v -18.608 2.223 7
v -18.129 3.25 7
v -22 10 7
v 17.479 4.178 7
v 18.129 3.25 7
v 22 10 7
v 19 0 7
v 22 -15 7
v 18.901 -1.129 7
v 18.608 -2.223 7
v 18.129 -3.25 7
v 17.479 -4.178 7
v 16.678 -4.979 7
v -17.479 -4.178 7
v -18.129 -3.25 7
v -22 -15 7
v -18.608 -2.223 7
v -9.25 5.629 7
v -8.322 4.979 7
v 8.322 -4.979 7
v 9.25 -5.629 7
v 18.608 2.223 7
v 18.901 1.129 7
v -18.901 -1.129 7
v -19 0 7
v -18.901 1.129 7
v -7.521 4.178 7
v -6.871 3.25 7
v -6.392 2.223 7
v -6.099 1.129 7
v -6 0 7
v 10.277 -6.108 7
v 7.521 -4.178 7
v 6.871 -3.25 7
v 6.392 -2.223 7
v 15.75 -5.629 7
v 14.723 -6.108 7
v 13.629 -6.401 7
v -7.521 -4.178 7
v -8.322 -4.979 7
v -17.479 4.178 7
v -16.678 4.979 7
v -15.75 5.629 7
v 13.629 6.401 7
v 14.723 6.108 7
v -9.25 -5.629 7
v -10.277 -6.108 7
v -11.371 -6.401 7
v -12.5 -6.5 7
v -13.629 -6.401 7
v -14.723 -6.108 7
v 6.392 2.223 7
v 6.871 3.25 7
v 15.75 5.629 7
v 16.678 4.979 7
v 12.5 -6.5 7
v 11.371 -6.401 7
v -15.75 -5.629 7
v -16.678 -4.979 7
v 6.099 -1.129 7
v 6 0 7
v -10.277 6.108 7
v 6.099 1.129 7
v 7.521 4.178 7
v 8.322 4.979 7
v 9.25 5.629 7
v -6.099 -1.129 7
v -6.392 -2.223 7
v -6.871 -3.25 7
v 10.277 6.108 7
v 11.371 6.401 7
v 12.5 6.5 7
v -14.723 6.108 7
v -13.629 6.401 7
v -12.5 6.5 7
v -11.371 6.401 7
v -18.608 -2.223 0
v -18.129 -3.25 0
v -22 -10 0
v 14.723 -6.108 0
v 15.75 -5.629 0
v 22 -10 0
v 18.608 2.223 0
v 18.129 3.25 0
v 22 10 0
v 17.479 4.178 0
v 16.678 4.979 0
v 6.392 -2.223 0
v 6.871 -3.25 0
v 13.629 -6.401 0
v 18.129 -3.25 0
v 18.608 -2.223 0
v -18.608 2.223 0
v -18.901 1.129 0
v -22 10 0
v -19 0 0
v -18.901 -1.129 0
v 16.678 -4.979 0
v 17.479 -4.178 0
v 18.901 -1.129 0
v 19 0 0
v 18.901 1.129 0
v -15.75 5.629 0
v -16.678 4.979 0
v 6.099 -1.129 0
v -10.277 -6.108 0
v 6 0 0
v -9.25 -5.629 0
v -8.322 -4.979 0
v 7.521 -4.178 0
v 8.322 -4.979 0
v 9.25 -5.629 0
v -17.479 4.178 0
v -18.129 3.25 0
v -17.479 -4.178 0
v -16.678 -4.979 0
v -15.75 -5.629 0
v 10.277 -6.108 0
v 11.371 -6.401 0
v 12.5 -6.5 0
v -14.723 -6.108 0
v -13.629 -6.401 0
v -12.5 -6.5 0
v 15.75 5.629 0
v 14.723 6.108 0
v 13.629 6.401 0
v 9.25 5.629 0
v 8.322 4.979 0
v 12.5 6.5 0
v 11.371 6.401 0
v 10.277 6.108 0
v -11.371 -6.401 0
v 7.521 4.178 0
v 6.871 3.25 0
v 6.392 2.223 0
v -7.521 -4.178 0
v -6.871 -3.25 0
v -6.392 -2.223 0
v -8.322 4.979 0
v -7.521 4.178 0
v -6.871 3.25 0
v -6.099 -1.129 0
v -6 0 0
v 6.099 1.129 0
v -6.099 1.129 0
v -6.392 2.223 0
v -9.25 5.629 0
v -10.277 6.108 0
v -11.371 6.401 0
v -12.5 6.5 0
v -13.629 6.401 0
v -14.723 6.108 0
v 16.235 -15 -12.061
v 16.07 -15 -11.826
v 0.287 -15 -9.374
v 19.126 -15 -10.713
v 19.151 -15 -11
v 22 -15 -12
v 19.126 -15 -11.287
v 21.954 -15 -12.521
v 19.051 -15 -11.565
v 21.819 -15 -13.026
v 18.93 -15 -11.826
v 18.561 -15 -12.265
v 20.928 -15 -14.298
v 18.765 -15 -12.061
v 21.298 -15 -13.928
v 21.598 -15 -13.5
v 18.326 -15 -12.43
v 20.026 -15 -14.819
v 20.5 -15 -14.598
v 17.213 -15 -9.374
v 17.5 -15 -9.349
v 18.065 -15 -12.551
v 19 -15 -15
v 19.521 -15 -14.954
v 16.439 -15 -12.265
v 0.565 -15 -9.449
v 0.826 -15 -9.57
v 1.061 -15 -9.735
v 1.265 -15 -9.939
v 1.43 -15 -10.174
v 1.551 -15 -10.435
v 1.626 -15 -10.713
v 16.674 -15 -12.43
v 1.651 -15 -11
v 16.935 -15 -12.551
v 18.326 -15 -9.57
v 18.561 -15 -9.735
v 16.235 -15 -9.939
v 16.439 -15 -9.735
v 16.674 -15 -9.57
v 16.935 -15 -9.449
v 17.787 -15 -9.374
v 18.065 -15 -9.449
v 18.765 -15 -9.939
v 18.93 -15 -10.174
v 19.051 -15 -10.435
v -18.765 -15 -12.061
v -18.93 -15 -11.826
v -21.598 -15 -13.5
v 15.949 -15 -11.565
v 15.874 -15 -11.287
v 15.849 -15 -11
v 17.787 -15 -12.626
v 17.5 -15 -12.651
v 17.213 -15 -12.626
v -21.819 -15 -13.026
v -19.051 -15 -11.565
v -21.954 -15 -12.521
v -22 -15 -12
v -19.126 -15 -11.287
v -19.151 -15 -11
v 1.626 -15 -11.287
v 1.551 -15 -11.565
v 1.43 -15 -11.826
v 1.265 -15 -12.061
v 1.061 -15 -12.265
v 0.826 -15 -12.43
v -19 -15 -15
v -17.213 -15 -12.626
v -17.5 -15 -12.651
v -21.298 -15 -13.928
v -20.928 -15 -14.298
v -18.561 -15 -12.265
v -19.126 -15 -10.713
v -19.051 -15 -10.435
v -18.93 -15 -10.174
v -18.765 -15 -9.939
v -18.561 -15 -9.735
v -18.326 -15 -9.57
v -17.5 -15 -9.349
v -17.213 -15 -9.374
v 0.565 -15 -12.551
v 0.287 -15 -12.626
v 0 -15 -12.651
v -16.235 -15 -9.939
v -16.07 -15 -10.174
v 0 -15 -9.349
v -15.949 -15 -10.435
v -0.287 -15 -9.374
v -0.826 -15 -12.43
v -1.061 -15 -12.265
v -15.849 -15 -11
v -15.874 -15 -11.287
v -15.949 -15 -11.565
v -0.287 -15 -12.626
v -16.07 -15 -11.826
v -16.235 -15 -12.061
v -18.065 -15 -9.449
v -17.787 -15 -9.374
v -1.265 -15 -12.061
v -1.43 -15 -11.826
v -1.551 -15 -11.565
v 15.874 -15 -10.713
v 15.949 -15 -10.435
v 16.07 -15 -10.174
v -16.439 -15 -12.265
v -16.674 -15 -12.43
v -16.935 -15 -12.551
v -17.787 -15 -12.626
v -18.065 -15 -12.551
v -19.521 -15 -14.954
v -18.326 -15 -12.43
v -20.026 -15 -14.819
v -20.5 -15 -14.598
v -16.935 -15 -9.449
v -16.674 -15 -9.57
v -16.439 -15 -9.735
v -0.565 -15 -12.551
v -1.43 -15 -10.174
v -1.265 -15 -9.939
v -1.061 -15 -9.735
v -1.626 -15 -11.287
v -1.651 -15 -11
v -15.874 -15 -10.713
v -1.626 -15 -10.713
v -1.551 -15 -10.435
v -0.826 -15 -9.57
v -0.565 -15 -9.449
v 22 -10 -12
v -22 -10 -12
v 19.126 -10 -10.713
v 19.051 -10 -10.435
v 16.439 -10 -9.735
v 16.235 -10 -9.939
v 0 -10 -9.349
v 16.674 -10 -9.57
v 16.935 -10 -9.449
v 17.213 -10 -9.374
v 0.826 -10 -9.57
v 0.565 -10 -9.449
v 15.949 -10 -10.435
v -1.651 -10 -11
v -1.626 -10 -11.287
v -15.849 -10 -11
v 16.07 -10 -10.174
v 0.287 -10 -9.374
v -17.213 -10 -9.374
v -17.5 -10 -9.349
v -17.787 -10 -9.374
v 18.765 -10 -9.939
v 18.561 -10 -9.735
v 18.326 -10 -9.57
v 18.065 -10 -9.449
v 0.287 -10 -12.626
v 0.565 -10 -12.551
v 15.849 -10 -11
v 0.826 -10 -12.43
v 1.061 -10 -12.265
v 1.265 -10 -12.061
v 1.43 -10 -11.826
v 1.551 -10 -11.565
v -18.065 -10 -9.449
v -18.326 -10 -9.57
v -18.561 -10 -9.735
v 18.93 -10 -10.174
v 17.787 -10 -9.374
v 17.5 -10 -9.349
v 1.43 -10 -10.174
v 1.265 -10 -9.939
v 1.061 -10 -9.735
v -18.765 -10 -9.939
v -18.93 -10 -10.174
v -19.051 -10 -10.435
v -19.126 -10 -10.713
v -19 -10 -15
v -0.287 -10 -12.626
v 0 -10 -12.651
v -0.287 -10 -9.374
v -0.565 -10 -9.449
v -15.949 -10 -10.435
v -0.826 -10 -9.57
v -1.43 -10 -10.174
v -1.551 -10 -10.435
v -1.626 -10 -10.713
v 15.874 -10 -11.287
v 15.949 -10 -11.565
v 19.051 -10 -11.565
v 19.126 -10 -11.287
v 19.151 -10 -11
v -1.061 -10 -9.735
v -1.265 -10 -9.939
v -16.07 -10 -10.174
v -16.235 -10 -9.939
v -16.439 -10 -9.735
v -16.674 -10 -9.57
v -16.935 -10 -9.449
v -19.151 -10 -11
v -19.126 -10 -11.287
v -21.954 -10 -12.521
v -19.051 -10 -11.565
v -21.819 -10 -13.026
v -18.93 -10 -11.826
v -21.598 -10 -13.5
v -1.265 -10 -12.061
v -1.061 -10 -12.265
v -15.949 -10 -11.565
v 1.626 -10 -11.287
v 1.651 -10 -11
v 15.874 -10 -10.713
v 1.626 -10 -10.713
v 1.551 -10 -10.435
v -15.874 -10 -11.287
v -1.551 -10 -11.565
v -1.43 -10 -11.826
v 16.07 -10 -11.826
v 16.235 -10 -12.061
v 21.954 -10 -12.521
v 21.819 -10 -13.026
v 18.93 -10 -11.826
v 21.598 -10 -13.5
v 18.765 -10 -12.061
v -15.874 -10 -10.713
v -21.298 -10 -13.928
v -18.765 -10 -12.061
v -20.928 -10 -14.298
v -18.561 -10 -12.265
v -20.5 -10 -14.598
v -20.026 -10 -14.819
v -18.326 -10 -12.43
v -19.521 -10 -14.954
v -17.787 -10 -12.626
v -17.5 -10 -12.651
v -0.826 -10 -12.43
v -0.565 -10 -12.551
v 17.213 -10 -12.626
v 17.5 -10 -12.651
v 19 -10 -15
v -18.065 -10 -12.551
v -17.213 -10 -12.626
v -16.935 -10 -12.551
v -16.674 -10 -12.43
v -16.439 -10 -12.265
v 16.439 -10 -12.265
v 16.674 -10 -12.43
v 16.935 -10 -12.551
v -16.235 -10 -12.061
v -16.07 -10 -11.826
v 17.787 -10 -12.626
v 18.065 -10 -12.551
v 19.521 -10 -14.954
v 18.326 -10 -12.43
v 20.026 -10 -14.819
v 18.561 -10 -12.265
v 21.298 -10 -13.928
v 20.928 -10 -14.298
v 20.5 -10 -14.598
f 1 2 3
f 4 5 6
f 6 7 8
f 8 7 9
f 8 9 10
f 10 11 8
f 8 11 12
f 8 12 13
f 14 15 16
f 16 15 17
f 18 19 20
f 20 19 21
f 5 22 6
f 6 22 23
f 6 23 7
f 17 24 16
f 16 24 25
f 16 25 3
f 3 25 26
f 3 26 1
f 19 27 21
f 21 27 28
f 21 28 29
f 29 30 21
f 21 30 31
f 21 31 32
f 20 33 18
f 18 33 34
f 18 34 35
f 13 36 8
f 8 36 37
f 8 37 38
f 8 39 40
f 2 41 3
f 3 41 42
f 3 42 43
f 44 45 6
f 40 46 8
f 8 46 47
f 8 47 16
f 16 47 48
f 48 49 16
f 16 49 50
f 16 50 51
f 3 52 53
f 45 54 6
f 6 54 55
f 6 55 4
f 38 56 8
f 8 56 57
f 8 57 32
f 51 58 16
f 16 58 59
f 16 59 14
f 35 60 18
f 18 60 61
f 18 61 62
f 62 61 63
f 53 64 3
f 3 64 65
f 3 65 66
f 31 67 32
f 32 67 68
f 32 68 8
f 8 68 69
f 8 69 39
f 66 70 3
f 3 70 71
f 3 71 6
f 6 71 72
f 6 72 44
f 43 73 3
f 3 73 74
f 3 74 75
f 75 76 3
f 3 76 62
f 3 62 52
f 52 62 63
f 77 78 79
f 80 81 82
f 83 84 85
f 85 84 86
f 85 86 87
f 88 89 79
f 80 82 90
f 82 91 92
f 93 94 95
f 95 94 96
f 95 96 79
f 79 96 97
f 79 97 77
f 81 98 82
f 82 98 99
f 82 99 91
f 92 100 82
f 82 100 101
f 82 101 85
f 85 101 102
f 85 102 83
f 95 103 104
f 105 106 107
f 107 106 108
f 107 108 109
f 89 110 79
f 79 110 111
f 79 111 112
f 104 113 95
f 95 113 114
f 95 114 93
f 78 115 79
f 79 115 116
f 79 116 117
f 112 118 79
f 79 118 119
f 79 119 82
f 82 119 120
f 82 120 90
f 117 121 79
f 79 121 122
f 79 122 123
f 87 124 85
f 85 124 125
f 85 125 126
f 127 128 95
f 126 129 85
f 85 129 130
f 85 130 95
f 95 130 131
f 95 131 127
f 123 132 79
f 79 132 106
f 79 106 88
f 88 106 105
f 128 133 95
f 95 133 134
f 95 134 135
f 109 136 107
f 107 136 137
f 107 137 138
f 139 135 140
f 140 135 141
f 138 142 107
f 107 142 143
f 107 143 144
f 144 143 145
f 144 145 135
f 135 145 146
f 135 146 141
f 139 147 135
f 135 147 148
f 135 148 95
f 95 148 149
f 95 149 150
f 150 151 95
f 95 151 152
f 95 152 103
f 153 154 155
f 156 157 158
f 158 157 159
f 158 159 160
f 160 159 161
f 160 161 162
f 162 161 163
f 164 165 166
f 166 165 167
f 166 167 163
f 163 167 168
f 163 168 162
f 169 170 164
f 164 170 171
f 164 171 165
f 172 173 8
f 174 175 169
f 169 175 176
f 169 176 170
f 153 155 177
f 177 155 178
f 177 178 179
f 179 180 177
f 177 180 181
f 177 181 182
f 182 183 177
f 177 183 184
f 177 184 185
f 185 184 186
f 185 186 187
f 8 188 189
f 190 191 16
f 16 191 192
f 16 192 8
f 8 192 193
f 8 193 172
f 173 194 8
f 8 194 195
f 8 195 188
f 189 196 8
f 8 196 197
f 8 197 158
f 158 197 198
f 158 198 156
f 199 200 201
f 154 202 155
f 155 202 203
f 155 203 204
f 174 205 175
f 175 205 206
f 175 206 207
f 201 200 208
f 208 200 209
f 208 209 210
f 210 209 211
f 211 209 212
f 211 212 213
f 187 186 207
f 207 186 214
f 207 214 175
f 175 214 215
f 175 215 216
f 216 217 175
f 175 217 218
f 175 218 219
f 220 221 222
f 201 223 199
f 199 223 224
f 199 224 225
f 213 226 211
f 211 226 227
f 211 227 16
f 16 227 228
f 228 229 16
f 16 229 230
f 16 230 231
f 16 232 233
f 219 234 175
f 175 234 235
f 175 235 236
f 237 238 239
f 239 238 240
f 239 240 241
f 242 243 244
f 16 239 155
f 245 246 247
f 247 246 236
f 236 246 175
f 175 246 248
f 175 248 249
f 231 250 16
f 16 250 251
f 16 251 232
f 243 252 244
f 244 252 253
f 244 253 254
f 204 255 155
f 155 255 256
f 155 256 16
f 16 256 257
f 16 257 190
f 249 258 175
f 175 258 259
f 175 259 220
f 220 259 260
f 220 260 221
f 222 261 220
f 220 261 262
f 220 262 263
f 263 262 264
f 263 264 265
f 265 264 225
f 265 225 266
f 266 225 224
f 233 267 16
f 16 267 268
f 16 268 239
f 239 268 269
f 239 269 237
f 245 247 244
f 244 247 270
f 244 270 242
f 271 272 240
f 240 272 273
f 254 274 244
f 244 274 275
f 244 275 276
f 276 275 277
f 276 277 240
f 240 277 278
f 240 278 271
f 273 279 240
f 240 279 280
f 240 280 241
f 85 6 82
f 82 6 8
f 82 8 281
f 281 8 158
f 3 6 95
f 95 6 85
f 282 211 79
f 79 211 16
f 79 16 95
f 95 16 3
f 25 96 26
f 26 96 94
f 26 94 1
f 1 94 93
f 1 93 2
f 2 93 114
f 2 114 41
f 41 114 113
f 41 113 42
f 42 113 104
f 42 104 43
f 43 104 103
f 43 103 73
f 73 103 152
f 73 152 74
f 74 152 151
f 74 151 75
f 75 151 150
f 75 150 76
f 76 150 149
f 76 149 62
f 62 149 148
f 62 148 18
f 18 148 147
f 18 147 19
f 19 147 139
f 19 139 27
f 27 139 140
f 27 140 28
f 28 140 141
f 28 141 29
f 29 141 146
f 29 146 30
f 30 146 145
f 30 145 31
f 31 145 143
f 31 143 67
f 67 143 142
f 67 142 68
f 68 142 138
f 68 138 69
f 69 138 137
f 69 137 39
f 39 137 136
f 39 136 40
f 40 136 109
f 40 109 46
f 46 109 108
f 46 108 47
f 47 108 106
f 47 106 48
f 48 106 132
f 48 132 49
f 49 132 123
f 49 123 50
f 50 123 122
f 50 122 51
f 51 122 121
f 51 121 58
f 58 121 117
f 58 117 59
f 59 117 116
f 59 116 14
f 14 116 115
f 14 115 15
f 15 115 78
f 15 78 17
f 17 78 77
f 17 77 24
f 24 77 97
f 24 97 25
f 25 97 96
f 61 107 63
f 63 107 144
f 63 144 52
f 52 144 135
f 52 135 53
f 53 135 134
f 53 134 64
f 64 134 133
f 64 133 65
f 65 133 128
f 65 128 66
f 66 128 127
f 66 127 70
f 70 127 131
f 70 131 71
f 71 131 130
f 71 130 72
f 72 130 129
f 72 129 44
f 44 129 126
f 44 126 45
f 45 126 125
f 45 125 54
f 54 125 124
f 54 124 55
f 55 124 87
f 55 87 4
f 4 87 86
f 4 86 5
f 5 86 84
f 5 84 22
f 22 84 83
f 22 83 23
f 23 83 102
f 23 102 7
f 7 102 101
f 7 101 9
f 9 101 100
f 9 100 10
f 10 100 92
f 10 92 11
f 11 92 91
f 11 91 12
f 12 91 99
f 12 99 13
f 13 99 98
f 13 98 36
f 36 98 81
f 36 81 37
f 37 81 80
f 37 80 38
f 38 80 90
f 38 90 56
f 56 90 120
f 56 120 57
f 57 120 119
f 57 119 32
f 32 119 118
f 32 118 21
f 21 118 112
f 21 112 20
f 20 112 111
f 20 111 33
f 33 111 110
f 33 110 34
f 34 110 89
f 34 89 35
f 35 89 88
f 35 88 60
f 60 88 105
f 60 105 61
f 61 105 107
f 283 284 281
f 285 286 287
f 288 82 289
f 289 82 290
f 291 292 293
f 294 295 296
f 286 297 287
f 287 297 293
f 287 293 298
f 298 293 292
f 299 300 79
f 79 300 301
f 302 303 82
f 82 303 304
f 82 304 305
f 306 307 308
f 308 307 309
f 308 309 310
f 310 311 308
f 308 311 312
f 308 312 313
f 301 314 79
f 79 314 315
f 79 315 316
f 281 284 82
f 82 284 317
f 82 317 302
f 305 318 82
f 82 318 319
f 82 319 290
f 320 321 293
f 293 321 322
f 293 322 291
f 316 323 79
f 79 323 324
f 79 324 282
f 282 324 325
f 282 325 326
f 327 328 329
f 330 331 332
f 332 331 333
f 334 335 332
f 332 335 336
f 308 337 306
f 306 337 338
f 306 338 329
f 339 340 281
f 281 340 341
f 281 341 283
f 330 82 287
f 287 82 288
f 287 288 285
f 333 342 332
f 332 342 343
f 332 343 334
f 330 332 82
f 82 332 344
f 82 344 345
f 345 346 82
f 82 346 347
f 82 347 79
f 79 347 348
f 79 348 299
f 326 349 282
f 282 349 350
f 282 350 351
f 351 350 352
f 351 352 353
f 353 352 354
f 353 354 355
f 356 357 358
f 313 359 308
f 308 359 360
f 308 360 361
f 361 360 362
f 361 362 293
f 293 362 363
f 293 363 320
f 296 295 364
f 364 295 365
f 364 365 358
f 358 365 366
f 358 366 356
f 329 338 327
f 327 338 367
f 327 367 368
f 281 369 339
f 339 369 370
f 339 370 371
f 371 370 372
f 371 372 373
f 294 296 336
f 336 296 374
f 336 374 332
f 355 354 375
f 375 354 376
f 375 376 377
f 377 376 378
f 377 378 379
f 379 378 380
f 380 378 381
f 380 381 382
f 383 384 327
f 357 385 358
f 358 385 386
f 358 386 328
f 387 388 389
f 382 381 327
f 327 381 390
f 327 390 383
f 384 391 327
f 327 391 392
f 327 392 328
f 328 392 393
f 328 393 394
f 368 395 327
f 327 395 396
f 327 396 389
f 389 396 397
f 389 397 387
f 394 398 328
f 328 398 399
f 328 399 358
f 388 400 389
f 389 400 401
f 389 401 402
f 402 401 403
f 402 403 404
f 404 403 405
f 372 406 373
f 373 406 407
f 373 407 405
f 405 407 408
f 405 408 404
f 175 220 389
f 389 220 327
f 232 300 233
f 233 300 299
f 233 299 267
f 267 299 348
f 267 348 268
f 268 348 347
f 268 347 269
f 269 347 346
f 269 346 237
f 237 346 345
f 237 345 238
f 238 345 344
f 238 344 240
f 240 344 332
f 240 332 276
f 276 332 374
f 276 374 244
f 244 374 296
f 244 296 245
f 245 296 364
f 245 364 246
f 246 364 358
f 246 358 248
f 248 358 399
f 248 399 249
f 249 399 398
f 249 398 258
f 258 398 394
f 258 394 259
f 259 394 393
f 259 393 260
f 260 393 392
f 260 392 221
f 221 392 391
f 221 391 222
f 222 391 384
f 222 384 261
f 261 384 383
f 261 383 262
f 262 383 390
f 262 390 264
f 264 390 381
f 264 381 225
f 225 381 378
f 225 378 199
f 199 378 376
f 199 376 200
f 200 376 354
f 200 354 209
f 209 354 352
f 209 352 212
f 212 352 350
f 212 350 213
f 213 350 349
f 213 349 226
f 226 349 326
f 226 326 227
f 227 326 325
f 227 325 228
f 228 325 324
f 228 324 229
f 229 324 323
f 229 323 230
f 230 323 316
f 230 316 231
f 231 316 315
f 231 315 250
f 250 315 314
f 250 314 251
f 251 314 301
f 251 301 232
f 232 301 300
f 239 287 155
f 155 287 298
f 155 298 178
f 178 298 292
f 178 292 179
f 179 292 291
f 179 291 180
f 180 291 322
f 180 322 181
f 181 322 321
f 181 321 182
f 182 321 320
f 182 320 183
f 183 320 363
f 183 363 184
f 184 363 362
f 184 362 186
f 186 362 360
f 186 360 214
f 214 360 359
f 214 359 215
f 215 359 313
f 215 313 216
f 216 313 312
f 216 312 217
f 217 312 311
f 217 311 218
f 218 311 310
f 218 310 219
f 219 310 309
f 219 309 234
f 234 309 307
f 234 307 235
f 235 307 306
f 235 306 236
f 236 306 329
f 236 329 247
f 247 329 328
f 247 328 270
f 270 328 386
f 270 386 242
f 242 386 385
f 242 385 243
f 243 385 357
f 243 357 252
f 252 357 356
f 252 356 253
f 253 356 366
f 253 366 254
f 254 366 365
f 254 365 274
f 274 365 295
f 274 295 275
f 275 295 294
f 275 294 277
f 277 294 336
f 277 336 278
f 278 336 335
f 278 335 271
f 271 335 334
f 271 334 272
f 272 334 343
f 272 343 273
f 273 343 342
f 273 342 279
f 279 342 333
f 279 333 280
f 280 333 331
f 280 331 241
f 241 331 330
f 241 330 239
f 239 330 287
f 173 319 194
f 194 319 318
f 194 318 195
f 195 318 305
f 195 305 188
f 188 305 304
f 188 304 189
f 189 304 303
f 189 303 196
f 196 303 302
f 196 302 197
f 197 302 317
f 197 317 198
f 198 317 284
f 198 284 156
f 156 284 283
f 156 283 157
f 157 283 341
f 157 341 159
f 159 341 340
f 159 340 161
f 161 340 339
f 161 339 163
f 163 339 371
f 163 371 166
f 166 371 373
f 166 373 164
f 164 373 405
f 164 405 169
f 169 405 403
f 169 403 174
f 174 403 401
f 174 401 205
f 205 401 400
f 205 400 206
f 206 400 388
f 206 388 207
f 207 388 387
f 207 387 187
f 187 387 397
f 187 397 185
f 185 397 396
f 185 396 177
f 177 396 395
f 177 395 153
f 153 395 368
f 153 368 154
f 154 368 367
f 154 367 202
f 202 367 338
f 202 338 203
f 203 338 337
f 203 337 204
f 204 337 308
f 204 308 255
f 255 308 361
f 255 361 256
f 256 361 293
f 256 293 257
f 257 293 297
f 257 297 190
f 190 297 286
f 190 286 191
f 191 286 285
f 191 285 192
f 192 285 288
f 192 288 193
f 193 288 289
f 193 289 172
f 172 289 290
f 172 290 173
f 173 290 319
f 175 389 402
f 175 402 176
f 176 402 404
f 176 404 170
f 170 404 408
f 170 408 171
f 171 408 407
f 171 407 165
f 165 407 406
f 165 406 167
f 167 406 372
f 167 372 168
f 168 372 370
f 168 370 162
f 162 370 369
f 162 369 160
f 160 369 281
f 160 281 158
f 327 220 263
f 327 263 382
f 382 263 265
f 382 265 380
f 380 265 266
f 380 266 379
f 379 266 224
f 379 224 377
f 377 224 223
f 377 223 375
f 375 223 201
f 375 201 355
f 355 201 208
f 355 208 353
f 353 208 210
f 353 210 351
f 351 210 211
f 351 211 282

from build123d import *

# Parameters (mm, degrees)
SKETCH1_R           = 6.5
BOSS_EXTRUDE1_DEPTH = 7
SKETCH2_W           = 22
SKETCH2_H           = 5
BOSS_EXTRUDE2_DEPTH = 15
SKETCH3_R           = 1.651
CUT_EXTRUDE1_DEPTH  = 34.301651611
FILLET1_R           = 3


with BuildPart() as part:
    # Sketch1 → Boss-Extrude1 (new body)
    with BuildSketch(Plane.XY):
        Polygon((22, 10), (-22, 10), (-22, -10), (-22, -15), (22, -15), (22, -10), align=None)
        with Locations((-12.5, 0)):
            Circle(SKETCH1_R, mode=Mode.SUBTRACT)
        with Locations((12.5, 0)):
            Circle(SKETCH1_R, mode=Mode.SUBTRACT)
    extrude(amount=BOSS_EXTRUDE1_DEPTH)

    # Sketch2 → Boss-Extrude2 (add)
    with BuildSketch(Plane(origin=(0, 0, 0), x_dir=(-1, 0, 0), z_dir=(0, 0, -1))):
        with Locations((-11, -12.5)):
            Rectangle(SKETCH2_W, SKETCH2_H)
        with Locations((11, -12.5)):
            Rectangle(SKETCH2_W, SKETCH2_H)
    extrude(amount=BOSS_EXTRUDE2_DEPTH)

    # Sketch3 → Cut-Extrude1 (cut, through all)
    with BuildSketch(Plane(origin=(0, -10, 0), x_dir=(1, 0, 0), z_dir=(0, 1, 0))):
        with Locations(Location((17.5, 11, 0), (0, 0, 270))):
            Circle(SKETCH3_R)
        with Locations(Location((0, 11, 0), (0, 0, 270))):
            Circle(SKETCH3_R)
        with Locations(Location((-17.5, 11, 0), (0, 0, 270))):
            Circle(SKETCH3_R)
    extrude(amount=-CUT_EXTRUDE1_DEPTH, mode=Mode.SUBTRACT)

    # Fillet1
    fillet1_edges = [part.edges().sort_by_distance(p)[0] for p in [
        (-22, -12.5, -15),
        (22, -12.5, -15),
    ]]
    fillet(fillet1_edges, radius=FILLET1_R)


solid = part.part
